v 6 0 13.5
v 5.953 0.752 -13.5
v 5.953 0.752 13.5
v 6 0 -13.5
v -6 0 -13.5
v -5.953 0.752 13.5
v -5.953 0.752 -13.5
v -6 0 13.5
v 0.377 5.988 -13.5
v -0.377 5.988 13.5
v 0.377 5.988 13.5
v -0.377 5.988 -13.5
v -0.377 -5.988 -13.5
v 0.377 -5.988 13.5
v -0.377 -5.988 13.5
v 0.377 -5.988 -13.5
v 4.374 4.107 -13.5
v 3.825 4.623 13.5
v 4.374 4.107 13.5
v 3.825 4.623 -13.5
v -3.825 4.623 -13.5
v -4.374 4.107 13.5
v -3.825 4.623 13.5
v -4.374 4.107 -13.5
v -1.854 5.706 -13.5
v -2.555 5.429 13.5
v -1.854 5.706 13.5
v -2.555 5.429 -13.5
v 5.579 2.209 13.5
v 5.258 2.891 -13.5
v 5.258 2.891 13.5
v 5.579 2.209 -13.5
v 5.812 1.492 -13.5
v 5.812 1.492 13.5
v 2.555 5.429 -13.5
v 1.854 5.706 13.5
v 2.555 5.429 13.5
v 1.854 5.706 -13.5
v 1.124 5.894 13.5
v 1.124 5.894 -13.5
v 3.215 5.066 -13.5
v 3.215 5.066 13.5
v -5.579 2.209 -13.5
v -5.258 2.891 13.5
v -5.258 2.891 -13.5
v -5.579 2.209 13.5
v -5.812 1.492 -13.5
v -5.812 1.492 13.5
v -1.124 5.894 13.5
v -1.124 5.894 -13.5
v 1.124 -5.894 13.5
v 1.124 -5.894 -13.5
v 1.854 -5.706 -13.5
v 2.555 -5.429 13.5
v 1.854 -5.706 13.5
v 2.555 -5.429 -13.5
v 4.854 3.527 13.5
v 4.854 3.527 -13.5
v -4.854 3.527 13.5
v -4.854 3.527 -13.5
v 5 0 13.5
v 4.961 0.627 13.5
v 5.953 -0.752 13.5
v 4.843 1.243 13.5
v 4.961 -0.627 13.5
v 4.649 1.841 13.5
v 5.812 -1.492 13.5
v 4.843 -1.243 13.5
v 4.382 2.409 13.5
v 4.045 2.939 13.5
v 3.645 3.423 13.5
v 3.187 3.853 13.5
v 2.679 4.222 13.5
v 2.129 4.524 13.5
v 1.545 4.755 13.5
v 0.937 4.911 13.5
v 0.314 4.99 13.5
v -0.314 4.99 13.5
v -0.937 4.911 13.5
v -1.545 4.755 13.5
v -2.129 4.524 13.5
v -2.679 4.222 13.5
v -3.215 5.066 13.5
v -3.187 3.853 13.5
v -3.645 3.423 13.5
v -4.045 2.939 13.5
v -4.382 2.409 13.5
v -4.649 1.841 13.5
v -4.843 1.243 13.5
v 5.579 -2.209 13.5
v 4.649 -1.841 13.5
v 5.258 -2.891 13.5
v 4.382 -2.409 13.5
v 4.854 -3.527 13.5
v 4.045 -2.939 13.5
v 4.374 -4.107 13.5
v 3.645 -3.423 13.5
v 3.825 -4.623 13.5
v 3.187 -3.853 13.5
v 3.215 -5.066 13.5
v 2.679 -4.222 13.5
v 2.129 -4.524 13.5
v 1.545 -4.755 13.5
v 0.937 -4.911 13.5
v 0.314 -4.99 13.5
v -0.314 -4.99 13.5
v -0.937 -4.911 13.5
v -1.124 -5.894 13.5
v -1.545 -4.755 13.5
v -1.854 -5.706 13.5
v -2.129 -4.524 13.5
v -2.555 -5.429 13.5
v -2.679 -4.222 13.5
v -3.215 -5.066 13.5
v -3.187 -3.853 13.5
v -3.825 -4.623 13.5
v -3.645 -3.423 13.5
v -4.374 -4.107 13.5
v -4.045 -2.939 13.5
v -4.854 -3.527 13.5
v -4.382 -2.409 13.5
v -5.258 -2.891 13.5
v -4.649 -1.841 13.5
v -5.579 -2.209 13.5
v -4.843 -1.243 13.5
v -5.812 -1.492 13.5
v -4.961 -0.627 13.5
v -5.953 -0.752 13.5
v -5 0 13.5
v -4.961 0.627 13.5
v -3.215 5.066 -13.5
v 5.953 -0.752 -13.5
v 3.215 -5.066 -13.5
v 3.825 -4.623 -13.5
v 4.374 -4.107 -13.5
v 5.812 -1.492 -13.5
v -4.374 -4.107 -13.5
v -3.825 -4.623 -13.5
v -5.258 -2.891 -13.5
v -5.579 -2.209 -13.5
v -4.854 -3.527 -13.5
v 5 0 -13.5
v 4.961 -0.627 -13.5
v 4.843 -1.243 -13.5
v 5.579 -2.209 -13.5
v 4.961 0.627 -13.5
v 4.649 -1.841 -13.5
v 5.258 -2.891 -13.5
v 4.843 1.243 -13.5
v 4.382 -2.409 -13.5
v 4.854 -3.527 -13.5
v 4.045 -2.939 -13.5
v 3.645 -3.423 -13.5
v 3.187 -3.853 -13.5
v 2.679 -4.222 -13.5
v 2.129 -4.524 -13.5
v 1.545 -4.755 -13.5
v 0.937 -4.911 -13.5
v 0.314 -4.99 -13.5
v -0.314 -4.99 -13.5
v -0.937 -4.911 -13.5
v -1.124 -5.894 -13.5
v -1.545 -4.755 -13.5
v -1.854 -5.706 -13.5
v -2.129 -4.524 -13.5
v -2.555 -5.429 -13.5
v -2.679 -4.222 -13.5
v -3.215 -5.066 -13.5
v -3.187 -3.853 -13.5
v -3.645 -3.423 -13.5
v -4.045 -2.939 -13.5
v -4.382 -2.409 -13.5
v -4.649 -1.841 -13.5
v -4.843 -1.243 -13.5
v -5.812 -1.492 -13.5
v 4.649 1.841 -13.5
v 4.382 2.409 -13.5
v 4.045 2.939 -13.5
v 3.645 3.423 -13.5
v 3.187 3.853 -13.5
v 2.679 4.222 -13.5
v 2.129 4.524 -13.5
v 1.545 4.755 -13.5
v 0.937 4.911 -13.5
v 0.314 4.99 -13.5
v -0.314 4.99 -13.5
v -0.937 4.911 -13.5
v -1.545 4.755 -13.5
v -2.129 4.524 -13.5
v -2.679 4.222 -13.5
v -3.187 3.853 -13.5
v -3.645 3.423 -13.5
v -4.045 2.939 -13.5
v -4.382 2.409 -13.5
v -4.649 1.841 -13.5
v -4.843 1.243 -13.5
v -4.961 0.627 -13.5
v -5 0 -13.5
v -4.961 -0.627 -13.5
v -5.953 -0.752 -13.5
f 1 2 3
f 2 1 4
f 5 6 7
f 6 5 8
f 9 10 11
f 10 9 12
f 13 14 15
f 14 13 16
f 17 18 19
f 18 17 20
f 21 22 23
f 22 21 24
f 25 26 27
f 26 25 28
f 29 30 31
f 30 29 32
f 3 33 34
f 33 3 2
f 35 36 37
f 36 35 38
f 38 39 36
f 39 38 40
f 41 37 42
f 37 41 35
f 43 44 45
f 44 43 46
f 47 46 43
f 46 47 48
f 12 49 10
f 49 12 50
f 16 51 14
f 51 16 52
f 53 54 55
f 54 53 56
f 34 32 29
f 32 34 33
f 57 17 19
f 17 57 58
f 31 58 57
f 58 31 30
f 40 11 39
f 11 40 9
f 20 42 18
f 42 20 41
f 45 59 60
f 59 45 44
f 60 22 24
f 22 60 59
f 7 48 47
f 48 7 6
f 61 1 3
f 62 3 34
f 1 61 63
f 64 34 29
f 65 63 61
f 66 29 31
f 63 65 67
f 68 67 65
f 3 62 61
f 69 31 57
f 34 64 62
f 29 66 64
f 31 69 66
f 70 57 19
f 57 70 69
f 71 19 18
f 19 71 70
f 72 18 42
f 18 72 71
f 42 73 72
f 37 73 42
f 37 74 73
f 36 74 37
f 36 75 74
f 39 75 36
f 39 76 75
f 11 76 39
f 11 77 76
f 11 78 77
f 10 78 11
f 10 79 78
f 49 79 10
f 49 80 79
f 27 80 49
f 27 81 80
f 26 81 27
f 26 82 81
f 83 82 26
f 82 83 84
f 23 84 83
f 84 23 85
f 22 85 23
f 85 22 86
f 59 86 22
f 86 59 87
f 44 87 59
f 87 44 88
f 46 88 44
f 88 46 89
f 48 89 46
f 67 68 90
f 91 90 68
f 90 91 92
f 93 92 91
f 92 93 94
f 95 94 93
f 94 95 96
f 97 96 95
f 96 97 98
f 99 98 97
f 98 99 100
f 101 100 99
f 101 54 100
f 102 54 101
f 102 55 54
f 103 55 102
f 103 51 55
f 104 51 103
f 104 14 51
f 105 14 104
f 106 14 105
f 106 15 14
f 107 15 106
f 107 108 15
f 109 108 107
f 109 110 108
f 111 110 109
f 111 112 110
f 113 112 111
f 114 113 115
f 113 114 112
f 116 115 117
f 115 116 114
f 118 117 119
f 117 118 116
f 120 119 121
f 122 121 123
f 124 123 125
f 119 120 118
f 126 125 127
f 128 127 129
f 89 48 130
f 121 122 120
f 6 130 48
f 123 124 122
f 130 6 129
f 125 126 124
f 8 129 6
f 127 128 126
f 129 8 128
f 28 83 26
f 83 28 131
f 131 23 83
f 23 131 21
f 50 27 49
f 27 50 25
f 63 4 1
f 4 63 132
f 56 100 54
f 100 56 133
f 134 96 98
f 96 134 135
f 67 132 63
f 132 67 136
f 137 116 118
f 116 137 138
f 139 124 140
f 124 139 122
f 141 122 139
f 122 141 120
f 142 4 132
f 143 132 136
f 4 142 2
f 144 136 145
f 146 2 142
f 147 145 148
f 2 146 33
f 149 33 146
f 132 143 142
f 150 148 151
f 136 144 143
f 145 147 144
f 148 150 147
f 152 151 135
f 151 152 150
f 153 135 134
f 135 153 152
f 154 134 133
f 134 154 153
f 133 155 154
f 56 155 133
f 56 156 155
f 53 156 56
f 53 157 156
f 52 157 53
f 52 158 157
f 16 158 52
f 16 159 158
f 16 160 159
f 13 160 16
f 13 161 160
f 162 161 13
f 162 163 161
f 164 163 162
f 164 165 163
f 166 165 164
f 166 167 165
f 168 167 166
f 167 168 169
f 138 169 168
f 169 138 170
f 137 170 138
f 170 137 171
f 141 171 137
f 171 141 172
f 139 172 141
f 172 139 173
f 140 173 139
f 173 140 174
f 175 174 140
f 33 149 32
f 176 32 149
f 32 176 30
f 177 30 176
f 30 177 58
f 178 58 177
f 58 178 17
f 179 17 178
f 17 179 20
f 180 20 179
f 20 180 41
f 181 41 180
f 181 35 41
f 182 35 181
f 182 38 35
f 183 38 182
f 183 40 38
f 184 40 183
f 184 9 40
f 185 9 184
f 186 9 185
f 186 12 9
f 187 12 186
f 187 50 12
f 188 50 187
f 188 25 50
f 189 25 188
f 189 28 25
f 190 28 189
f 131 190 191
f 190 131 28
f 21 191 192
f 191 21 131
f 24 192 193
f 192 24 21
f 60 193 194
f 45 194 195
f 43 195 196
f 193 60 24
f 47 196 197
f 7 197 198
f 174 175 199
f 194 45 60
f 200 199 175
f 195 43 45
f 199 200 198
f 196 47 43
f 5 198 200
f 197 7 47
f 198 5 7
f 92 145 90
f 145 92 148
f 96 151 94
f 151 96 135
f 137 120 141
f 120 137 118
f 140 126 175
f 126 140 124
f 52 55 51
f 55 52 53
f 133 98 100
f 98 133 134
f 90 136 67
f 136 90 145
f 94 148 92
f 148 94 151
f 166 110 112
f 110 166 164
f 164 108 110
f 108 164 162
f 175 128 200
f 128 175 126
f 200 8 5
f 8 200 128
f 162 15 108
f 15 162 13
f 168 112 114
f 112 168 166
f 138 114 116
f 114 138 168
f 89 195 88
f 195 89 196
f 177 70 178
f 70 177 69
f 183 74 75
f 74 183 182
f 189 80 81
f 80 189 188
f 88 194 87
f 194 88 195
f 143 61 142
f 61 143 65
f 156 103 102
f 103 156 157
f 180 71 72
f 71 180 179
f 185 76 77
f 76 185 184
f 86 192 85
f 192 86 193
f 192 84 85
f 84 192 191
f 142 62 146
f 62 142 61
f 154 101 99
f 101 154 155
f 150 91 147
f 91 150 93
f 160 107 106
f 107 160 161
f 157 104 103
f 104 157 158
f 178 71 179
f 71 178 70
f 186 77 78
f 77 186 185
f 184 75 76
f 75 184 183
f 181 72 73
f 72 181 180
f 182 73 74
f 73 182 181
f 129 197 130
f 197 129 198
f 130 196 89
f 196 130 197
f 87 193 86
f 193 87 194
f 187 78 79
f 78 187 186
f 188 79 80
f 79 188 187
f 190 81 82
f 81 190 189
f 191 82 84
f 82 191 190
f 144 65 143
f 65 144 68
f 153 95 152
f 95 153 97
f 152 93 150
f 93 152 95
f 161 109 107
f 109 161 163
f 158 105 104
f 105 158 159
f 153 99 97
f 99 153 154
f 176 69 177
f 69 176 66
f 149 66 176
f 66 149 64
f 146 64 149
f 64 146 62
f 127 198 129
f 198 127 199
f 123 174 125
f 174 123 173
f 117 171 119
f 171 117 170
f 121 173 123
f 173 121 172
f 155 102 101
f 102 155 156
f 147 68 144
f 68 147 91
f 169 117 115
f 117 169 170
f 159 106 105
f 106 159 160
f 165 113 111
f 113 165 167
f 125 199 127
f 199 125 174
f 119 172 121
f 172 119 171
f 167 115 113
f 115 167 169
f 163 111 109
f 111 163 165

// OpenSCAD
$fn = 50;


difference() {
	union() {
		translate(v = [0, 0, -13.5000000000]) {
			cylinder(h = 27, r = 6.0000000000);
		}
	}
	union() {
		translate(v = [0, 0, -100.0000000000]) {
			cylinder(h = 200, r = 5);
		}
	}
}
